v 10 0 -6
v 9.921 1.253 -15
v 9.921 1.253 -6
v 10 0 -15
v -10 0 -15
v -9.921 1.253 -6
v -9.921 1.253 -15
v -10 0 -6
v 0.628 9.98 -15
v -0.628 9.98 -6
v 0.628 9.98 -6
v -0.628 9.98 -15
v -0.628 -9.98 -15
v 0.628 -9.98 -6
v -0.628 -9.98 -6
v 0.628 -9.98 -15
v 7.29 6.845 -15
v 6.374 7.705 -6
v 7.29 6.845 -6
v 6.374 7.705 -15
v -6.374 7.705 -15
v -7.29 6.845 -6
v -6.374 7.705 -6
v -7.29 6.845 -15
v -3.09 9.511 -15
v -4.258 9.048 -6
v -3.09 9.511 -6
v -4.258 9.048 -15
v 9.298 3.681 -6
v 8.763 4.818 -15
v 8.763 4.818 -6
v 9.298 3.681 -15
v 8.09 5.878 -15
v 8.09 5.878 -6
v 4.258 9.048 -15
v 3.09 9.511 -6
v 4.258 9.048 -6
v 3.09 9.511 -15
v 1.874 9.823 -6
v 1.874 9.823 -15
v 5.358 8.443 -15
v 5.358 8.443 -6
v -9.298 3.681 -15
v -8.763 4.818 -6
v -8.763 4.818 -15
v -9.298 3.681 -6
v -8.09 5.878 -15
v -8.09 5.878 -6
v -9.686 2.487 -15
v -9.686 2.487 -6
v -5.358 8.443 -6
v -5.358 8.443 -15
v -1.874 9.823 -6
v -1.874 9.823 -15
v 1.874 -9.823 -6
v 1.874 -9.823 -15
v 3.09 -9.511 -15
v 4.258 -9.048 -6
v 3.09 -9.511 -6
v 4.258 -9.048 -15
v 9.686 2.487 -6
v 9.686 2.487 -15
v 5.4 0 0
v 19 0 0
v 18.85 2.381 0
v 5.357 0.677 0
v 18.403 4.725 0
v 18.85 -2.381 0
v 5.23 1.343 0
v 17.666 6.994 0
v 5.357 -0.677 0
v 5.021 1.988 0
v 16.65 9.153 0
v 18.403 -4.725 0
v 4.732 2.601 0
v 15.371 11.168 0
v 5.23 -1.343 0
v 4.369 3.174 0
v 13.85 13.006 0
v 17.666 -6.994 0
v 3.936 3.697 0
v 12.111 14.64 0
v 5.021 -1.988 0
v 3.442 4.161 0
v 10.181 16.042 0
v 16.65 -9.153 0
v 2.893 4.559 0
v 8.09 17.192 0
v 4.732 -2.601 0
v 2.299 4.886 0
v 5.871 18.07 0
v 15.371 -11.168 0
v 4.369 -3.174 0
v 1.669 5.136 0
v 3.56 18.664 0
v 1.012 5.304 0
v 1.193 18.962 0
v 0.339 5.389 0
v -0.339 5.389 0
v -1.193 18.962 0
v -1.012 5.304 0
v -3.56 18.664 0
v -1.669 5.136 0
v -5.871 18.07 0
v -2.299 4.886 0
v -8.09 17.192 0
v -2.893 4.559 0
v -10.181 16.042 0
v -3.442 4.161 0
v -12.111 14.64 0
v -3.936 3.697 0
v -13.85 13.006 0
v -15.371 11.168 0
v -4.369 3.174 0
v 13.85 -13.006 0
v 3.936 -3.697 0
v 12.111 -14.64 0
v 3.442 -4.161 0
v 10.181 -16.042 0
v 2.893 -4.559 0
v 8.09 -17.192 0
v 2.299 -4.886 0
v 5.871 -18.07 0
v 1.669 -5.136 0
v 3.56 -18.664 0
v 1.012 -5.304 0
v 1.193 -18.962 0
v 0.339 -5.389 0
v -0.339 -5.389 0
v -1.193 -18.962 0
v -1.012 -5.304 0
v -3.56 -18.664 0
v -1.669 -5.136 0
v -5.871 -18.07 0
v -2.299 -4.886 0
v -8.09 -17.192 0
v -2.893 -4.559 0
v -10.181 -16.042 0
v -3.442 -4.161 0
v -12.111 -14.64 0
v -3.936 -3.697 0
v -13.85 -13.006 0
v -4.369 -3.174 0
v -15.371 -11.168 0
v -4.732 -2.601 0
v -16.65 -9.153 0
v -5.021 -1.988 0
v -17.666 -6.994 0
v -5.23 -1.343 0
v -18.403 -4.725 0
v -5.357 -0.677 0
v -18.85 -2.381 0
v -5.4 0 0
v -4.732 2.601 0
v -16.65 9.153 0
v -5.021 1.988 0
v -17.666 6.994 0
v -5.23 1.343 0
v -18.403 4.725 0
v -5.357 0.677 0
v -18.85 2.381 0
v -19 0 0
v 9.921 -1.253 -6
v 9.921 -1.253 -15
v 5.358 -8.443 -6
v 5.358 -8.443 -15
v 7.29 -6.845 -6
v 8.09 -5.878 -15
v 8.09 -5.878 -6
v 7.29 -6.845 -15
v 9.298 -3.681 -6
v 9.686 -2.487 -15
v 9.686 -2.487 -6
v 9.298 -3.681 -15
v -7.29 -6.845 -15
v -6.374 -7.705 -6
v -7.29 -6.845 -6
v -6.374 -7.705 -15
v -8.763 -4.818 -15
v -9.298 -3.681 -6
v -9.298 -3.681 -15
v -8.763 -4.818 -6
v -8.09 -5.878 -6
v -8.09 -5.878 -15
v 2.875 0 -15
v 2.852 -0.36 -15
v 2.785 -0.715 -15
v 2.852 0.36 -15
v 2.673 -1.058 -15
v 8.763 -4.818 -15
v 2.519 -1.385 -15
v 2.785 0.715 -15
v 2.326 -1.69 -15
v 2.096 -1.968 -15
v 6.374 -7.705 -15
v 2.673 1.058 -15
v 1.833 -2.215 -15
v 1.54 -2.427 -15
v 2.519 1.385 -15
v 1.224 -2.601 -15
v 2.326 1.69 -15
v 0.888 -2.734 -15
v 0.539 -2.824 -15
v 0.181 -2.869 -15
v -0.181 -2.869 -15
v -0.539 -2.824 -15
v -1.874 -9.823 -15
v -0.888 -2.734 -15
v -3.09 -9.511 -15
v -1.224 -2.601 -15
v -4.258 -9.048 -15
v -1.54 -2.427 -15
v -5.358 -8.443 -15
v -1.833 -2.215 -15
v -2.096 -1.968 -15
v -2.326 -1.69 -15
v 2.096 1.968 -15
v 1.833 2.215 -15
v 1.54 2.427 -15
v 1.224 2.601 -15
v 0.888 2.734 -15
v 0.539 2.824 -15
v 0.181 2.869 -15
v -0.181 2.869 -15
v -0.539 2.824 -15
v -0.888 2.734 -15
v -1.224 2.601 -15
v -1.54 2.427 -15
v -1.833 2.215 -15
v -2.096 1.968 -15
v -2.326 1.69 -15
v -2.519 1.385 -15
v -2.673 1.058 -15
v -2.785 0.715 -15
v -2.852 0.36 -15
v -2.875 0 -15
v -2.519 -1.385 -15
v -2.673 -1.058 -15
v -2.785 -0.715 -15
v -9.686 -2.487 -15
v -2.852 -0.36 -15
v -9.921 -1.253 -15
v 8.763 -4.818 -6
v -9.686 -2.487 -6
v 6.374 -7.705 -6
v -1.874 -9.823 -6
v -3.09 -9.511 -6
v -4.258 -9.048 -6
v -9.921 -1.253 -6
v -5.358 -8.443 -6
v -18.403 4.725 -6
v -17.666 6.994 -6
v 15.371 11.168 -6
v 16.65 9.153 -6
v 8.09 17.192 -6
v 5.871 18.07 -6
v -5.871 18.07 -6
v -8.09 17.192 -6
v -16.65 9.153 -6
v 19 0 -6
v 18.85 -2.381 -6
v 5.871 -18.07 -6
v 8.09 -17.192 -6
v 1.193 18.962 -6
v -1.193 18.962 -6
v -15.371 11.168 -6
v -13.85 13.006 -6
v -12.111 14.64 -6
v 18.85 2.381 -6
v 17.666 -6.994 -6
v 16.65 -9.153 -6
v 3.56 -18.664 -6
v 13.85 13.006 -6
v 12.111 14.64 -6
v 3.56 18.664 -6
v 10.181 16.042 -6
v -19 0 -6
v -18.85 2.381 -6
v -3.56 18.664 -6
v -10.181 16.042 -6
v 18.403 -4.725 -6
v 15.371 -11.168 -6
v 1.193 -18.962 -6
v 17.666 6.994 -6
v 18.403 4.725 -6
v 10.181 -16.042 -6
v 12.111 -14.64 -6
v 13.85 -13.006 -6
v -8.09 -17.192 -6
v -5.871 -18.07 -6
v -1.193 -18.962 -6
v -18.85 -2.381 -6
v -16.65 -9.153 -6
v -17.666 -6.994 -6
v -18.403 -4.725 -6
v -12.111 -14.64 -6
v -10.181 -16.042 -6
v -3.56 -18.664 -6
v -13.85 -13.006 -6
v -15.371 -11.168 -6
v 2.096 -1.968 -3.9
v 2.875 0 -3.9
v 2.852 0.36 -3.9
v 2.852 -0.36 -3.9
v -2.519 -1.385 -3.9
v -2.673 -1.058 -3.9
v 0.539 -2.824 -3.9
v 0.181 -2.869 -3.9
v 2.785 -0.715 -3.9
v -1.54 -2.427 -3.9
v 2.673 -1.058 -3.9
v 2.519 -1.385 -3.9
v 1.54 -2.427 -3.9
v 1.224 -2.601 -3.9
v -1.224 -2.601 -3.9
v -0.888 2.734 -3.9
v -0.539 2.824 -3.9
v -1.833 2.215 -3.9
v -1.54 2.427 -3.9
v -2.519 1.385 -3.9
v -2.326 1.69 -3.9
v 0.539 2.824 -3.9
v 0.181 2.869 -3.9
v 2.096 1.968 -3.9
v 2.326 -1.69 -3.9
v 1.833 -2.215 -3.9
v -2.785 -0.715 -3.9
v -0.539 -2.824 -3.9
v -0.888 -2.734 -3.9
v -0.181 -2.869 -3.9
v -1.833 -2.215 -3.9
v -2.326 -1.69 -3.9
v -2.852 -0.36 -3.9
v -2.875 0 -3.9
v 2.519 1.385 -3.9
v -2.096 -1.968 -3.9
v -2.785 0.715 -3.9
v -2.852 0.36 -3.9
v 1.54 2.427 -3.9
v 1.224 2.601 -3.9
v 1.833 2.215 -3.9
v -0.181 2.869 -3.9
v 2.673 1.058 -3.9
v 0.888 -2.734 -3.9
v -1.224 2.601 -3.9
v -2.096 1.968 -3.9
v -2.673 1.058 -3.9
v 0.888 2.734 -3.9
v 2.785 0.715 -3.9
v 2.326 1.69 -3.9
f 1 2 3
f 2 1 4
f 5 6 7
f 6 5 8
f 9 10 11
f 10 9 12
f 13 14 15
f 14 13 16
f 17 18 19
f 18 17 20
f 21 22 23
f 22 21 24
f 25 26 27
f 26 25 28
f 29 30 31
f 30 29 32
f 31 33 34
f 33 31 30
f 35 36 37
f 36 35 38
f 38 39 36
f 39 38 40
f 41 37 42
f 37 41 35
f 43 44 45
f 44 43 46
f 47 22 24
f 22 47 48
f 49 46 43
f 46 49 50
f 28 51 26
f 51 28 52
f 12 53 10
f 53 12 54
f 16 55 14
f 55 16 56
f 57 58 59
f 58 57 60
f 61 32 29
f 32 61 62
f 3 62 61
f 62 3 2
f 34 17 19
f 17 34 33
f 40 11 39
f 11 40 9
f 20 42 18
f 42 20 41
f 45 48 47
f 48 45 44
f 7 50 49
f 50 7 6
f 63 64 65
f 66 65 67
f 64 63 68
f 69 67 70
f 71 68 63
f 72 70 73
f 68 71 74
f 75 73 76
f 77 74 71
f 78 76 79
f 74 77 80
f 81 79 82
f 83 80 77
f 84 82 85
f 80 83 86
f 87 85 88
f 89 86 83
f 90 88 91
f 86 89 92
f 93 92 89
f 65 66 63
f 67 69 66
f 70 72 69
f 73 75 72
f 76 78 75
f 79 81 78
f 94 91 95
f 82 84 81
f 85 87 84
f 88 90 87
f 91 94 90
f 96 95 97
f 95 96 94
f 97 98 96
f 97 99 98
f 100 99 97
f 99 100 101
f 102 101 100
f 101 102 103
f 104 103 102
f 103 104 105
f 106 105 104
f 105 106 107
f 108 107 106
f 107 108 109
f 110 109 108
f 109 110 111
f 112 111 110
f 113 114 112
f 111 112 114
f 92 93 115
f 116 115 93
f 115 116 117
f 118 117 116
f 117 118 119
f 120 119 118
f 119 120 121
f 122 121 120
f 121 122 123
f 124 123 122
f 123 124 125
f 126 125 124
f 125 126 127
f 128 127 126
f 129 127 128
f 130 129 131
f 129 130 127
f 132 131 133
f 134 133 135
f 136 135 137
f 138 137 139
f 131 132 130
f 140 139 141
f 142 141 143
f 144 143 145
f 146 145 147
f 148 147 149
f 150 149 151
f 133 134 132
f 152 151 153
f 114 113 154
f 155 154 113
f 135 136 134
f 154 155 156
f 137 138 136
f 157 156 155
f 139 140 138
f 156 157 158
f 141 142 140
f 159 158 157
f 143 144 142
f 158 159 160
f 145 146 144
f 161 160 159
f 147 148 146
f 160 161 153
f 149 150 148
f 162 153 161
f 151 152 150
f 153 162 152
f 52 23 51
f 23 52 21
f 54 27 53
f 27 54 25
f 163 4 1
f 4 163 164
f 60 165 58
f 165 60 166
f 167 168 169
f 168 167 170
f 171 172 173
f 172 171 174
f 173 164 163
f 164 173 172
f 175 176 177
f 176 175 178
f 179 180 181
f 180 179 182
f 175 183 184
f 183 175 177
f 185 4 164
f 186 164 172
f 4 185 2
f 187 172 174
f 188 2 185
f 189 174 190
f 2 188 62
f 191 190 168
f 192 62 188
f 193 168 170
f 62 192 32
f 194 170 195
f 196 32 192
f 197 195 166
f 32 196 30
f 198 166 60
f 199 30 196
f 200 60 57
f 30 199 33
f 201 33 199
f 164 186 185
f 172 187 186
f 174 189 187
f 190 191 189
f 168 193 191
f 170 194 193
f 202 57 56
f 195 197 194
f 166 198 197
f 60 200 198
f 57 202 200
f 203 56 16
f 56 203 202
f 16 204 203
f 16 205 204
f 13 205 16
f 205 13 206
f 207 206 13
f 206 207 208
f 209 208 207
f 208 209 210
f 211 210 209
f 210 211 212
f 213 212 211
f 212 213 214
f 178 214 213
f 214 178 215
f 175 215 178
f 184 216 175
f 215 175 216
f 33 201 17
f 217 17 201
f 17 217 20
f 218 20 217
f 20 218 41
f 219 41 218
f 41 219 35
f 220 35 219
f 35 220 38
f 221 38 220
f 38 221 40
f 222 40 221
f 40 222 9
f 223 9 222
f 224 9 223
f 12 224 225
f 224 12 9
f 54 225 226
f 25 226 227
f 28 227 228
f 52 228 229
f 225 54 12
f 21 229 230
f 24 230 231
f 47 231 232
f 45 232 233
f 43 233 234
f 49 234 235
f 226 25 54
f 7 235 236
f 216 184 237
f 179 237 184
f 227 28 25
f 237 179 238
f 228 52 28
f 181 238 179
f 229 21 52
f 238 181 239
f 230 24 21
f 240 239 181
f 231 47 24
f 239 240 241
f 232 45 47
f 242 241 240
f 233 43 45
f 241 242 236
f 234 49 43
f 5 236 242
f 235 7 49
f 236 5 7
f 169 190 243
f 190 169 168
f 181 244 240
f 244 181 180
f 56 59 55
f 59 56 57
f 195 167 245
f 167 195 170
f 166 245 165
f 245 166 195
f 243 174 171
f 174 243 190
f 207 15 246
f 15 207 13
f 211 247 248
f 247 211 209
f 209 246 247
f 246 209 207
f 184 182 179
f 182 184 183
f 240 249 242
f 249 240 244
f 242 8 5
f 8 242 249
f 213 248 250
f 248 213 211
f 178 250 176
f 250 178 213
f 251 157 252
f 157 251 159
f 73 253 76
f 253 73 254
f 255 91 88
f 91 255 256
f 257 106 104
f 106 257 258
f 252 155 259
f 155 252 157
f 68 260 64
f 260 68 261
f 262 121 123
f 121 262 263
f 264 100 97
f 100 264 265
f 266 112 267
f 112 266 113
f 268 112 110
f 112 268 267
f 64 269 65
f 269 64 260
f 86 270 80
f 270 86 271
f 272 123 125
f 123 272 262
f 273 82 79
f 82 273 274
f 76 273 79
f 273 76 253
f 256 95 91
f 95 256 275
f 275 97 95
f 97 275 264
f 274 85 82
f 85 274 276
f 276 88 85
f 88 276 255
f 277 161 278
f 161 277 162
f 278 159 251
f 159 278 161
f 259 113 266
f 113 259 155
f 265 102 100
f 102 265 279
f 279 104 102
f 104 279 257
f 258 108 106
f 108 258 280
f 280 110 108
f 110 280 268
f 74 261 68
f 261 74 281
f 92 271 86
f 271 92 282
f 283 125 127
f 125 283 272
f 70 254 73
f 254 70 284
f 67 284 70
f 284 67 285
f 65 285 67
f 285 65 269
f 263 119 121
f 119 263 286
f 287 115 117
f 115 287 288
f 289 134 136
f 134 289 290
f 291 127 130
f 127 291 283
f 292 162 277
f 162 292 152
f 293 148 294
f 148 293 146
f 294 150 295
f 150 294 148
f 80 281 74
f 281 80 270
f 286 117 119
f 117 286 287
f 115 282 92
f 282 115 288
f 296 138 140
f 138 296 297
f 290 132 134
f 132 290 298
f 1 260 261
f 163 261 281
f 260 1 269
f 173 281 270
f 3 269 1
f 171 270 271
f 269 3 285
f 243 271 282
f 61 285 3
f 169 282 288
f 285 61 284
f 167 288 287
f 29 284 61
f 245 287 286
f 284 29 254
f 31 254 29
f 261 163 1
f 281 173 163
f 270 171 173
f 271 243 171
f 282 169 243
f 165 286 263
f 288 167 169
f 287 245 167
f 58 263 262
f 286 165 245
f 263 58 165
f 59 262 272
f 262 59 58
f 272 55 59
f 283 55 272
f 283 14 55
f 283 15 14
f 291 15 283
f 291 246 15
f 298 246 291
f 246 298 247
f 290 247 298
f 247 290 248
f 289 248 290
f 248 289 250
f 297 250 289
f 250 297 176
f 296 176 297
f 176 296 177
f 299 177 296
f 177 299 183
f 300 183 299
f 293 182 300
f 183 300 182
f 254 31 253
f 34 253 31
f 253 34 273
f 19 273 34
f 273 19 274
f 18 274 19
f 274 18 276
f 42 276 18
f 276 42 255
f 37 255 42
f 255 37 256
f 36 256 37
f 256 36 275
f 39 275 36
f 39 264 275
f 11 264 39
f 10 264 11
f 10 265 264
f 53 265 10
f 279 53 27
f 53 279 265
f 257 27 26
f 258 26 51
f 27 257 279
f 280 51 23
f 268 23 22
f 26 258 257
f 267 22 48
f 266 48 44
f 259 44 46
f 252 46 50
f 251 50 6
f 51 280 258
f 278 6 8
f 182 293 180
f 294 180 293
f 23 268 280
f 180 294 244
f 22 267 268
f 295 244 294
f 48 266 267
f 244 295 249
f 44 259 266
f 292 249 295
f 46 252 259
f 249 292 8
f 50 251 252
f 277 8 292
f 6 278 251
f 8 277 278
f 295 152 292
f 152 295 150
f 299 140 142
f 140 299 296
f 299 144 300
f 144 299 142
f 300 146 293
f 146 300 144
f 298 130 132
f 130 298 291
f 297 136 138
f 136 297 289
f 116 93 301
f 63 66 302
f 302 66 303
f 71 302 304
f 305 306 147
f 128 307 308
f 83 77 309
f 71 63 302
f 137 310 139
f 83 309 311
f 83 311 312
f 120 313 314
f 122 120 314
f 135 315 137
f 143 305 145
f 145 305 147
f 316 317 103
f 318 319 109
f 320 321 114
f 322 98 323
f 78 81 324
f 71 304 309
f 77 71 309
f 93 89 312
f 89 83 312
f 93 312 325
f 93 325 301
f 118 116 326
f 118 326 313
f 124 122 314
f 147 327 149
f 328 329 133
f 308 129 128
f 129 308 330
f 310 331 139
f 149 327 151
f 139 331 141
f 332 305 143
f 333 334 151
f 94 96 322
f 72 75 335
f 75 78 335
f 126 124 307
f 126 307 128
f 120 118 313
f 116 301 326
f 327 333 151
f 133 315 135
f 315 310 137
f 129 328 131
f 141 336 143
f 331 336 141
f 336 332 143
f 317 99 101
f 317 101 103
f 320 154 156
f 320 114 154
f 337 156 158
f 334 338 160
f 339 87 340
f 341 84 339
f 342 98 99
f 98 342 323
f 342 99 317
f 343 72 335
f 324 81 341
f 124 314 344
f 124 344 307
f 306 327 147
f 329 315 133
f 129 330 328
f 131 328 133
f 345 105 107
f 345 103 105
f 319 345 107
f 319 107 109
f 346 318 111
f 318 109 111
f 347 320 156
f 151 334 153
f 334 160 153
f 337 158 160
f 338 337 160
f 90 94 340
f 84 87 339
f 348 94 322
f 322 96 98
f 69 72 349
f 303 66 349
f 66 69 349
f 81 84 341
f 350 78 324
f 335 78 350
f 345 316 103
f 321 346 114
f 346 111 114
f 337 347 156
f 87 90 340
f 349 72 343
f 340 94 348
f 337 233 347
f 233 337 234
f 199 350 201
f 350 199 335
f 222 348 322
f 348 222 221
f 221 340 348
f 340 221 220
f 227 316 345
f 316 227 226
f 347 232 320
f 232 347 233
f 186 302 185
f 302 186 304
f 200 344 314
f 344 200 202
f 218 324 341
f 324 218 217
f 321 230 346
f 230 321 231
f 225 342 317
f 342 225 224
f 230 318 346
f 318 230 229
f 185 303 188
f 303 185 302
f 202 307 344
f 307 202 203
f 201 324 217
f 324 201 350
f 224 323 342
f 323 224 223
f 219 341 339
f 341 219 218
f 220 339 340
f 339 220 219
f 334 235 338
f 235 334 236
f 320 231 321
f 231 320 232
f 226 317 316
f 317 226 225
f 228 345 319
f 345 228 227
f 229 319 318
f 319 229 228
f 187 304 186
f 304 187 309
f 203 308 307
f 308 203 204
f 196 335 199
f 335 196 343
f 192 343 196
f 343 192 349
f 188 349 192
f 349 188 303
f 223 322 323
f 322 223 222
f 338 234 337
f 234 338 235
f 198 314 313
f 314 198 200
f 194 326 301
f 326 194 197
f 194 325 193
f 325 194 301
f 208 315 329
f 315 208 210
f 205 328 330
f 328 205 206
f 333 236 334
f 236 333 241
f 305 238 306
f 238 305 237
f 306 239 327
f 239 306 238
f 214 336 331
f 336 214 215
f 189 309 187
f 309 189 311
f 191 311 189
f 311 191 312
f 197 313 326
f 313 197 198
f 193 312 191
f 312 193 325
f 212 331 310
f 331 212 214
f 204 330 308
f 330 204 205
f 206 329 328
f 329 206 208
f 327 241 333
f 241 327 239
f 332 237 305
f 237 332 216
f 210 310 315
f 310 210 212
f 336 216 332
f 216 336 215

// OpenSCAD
$fn = 50;


difference() {
	union() {
		translate(v = [0, 0, -15.0000000000]) {
			cylinder(h = 15, r = 10.0000000000);
		}
		translate(v = [0, 0, -6.0000000000]) {
			cylinder(h = 6, r = 19.0000000000);
		}
	}
	union() {
		translate(v = [0, 0, 0]) {
			rotate(a = [0, 0, 0]) {
				difference() {
					union() {
						#translate(v = [0, 0, -15.0000000000]) {
							cylinder(h = 15, r = 2.6000000000);
						}
						#translate(v = [0, 0, -3.9000000000]) {
							cylinder(h = 3.9000000000, r1 = 2.8750000000, r2 = 5.4000000000);
						}
						#translate(v = [0, 0, -15.0000000000]) {
							cylinder(h = 15, r = 2.8750000000);
						}
						#translate(v = [0, 0, -15.0000000000]) {
							cylinder(h = 15, r = 2.6000000000);
						}
					}
					union();
				}
			}
		}
	}
}
